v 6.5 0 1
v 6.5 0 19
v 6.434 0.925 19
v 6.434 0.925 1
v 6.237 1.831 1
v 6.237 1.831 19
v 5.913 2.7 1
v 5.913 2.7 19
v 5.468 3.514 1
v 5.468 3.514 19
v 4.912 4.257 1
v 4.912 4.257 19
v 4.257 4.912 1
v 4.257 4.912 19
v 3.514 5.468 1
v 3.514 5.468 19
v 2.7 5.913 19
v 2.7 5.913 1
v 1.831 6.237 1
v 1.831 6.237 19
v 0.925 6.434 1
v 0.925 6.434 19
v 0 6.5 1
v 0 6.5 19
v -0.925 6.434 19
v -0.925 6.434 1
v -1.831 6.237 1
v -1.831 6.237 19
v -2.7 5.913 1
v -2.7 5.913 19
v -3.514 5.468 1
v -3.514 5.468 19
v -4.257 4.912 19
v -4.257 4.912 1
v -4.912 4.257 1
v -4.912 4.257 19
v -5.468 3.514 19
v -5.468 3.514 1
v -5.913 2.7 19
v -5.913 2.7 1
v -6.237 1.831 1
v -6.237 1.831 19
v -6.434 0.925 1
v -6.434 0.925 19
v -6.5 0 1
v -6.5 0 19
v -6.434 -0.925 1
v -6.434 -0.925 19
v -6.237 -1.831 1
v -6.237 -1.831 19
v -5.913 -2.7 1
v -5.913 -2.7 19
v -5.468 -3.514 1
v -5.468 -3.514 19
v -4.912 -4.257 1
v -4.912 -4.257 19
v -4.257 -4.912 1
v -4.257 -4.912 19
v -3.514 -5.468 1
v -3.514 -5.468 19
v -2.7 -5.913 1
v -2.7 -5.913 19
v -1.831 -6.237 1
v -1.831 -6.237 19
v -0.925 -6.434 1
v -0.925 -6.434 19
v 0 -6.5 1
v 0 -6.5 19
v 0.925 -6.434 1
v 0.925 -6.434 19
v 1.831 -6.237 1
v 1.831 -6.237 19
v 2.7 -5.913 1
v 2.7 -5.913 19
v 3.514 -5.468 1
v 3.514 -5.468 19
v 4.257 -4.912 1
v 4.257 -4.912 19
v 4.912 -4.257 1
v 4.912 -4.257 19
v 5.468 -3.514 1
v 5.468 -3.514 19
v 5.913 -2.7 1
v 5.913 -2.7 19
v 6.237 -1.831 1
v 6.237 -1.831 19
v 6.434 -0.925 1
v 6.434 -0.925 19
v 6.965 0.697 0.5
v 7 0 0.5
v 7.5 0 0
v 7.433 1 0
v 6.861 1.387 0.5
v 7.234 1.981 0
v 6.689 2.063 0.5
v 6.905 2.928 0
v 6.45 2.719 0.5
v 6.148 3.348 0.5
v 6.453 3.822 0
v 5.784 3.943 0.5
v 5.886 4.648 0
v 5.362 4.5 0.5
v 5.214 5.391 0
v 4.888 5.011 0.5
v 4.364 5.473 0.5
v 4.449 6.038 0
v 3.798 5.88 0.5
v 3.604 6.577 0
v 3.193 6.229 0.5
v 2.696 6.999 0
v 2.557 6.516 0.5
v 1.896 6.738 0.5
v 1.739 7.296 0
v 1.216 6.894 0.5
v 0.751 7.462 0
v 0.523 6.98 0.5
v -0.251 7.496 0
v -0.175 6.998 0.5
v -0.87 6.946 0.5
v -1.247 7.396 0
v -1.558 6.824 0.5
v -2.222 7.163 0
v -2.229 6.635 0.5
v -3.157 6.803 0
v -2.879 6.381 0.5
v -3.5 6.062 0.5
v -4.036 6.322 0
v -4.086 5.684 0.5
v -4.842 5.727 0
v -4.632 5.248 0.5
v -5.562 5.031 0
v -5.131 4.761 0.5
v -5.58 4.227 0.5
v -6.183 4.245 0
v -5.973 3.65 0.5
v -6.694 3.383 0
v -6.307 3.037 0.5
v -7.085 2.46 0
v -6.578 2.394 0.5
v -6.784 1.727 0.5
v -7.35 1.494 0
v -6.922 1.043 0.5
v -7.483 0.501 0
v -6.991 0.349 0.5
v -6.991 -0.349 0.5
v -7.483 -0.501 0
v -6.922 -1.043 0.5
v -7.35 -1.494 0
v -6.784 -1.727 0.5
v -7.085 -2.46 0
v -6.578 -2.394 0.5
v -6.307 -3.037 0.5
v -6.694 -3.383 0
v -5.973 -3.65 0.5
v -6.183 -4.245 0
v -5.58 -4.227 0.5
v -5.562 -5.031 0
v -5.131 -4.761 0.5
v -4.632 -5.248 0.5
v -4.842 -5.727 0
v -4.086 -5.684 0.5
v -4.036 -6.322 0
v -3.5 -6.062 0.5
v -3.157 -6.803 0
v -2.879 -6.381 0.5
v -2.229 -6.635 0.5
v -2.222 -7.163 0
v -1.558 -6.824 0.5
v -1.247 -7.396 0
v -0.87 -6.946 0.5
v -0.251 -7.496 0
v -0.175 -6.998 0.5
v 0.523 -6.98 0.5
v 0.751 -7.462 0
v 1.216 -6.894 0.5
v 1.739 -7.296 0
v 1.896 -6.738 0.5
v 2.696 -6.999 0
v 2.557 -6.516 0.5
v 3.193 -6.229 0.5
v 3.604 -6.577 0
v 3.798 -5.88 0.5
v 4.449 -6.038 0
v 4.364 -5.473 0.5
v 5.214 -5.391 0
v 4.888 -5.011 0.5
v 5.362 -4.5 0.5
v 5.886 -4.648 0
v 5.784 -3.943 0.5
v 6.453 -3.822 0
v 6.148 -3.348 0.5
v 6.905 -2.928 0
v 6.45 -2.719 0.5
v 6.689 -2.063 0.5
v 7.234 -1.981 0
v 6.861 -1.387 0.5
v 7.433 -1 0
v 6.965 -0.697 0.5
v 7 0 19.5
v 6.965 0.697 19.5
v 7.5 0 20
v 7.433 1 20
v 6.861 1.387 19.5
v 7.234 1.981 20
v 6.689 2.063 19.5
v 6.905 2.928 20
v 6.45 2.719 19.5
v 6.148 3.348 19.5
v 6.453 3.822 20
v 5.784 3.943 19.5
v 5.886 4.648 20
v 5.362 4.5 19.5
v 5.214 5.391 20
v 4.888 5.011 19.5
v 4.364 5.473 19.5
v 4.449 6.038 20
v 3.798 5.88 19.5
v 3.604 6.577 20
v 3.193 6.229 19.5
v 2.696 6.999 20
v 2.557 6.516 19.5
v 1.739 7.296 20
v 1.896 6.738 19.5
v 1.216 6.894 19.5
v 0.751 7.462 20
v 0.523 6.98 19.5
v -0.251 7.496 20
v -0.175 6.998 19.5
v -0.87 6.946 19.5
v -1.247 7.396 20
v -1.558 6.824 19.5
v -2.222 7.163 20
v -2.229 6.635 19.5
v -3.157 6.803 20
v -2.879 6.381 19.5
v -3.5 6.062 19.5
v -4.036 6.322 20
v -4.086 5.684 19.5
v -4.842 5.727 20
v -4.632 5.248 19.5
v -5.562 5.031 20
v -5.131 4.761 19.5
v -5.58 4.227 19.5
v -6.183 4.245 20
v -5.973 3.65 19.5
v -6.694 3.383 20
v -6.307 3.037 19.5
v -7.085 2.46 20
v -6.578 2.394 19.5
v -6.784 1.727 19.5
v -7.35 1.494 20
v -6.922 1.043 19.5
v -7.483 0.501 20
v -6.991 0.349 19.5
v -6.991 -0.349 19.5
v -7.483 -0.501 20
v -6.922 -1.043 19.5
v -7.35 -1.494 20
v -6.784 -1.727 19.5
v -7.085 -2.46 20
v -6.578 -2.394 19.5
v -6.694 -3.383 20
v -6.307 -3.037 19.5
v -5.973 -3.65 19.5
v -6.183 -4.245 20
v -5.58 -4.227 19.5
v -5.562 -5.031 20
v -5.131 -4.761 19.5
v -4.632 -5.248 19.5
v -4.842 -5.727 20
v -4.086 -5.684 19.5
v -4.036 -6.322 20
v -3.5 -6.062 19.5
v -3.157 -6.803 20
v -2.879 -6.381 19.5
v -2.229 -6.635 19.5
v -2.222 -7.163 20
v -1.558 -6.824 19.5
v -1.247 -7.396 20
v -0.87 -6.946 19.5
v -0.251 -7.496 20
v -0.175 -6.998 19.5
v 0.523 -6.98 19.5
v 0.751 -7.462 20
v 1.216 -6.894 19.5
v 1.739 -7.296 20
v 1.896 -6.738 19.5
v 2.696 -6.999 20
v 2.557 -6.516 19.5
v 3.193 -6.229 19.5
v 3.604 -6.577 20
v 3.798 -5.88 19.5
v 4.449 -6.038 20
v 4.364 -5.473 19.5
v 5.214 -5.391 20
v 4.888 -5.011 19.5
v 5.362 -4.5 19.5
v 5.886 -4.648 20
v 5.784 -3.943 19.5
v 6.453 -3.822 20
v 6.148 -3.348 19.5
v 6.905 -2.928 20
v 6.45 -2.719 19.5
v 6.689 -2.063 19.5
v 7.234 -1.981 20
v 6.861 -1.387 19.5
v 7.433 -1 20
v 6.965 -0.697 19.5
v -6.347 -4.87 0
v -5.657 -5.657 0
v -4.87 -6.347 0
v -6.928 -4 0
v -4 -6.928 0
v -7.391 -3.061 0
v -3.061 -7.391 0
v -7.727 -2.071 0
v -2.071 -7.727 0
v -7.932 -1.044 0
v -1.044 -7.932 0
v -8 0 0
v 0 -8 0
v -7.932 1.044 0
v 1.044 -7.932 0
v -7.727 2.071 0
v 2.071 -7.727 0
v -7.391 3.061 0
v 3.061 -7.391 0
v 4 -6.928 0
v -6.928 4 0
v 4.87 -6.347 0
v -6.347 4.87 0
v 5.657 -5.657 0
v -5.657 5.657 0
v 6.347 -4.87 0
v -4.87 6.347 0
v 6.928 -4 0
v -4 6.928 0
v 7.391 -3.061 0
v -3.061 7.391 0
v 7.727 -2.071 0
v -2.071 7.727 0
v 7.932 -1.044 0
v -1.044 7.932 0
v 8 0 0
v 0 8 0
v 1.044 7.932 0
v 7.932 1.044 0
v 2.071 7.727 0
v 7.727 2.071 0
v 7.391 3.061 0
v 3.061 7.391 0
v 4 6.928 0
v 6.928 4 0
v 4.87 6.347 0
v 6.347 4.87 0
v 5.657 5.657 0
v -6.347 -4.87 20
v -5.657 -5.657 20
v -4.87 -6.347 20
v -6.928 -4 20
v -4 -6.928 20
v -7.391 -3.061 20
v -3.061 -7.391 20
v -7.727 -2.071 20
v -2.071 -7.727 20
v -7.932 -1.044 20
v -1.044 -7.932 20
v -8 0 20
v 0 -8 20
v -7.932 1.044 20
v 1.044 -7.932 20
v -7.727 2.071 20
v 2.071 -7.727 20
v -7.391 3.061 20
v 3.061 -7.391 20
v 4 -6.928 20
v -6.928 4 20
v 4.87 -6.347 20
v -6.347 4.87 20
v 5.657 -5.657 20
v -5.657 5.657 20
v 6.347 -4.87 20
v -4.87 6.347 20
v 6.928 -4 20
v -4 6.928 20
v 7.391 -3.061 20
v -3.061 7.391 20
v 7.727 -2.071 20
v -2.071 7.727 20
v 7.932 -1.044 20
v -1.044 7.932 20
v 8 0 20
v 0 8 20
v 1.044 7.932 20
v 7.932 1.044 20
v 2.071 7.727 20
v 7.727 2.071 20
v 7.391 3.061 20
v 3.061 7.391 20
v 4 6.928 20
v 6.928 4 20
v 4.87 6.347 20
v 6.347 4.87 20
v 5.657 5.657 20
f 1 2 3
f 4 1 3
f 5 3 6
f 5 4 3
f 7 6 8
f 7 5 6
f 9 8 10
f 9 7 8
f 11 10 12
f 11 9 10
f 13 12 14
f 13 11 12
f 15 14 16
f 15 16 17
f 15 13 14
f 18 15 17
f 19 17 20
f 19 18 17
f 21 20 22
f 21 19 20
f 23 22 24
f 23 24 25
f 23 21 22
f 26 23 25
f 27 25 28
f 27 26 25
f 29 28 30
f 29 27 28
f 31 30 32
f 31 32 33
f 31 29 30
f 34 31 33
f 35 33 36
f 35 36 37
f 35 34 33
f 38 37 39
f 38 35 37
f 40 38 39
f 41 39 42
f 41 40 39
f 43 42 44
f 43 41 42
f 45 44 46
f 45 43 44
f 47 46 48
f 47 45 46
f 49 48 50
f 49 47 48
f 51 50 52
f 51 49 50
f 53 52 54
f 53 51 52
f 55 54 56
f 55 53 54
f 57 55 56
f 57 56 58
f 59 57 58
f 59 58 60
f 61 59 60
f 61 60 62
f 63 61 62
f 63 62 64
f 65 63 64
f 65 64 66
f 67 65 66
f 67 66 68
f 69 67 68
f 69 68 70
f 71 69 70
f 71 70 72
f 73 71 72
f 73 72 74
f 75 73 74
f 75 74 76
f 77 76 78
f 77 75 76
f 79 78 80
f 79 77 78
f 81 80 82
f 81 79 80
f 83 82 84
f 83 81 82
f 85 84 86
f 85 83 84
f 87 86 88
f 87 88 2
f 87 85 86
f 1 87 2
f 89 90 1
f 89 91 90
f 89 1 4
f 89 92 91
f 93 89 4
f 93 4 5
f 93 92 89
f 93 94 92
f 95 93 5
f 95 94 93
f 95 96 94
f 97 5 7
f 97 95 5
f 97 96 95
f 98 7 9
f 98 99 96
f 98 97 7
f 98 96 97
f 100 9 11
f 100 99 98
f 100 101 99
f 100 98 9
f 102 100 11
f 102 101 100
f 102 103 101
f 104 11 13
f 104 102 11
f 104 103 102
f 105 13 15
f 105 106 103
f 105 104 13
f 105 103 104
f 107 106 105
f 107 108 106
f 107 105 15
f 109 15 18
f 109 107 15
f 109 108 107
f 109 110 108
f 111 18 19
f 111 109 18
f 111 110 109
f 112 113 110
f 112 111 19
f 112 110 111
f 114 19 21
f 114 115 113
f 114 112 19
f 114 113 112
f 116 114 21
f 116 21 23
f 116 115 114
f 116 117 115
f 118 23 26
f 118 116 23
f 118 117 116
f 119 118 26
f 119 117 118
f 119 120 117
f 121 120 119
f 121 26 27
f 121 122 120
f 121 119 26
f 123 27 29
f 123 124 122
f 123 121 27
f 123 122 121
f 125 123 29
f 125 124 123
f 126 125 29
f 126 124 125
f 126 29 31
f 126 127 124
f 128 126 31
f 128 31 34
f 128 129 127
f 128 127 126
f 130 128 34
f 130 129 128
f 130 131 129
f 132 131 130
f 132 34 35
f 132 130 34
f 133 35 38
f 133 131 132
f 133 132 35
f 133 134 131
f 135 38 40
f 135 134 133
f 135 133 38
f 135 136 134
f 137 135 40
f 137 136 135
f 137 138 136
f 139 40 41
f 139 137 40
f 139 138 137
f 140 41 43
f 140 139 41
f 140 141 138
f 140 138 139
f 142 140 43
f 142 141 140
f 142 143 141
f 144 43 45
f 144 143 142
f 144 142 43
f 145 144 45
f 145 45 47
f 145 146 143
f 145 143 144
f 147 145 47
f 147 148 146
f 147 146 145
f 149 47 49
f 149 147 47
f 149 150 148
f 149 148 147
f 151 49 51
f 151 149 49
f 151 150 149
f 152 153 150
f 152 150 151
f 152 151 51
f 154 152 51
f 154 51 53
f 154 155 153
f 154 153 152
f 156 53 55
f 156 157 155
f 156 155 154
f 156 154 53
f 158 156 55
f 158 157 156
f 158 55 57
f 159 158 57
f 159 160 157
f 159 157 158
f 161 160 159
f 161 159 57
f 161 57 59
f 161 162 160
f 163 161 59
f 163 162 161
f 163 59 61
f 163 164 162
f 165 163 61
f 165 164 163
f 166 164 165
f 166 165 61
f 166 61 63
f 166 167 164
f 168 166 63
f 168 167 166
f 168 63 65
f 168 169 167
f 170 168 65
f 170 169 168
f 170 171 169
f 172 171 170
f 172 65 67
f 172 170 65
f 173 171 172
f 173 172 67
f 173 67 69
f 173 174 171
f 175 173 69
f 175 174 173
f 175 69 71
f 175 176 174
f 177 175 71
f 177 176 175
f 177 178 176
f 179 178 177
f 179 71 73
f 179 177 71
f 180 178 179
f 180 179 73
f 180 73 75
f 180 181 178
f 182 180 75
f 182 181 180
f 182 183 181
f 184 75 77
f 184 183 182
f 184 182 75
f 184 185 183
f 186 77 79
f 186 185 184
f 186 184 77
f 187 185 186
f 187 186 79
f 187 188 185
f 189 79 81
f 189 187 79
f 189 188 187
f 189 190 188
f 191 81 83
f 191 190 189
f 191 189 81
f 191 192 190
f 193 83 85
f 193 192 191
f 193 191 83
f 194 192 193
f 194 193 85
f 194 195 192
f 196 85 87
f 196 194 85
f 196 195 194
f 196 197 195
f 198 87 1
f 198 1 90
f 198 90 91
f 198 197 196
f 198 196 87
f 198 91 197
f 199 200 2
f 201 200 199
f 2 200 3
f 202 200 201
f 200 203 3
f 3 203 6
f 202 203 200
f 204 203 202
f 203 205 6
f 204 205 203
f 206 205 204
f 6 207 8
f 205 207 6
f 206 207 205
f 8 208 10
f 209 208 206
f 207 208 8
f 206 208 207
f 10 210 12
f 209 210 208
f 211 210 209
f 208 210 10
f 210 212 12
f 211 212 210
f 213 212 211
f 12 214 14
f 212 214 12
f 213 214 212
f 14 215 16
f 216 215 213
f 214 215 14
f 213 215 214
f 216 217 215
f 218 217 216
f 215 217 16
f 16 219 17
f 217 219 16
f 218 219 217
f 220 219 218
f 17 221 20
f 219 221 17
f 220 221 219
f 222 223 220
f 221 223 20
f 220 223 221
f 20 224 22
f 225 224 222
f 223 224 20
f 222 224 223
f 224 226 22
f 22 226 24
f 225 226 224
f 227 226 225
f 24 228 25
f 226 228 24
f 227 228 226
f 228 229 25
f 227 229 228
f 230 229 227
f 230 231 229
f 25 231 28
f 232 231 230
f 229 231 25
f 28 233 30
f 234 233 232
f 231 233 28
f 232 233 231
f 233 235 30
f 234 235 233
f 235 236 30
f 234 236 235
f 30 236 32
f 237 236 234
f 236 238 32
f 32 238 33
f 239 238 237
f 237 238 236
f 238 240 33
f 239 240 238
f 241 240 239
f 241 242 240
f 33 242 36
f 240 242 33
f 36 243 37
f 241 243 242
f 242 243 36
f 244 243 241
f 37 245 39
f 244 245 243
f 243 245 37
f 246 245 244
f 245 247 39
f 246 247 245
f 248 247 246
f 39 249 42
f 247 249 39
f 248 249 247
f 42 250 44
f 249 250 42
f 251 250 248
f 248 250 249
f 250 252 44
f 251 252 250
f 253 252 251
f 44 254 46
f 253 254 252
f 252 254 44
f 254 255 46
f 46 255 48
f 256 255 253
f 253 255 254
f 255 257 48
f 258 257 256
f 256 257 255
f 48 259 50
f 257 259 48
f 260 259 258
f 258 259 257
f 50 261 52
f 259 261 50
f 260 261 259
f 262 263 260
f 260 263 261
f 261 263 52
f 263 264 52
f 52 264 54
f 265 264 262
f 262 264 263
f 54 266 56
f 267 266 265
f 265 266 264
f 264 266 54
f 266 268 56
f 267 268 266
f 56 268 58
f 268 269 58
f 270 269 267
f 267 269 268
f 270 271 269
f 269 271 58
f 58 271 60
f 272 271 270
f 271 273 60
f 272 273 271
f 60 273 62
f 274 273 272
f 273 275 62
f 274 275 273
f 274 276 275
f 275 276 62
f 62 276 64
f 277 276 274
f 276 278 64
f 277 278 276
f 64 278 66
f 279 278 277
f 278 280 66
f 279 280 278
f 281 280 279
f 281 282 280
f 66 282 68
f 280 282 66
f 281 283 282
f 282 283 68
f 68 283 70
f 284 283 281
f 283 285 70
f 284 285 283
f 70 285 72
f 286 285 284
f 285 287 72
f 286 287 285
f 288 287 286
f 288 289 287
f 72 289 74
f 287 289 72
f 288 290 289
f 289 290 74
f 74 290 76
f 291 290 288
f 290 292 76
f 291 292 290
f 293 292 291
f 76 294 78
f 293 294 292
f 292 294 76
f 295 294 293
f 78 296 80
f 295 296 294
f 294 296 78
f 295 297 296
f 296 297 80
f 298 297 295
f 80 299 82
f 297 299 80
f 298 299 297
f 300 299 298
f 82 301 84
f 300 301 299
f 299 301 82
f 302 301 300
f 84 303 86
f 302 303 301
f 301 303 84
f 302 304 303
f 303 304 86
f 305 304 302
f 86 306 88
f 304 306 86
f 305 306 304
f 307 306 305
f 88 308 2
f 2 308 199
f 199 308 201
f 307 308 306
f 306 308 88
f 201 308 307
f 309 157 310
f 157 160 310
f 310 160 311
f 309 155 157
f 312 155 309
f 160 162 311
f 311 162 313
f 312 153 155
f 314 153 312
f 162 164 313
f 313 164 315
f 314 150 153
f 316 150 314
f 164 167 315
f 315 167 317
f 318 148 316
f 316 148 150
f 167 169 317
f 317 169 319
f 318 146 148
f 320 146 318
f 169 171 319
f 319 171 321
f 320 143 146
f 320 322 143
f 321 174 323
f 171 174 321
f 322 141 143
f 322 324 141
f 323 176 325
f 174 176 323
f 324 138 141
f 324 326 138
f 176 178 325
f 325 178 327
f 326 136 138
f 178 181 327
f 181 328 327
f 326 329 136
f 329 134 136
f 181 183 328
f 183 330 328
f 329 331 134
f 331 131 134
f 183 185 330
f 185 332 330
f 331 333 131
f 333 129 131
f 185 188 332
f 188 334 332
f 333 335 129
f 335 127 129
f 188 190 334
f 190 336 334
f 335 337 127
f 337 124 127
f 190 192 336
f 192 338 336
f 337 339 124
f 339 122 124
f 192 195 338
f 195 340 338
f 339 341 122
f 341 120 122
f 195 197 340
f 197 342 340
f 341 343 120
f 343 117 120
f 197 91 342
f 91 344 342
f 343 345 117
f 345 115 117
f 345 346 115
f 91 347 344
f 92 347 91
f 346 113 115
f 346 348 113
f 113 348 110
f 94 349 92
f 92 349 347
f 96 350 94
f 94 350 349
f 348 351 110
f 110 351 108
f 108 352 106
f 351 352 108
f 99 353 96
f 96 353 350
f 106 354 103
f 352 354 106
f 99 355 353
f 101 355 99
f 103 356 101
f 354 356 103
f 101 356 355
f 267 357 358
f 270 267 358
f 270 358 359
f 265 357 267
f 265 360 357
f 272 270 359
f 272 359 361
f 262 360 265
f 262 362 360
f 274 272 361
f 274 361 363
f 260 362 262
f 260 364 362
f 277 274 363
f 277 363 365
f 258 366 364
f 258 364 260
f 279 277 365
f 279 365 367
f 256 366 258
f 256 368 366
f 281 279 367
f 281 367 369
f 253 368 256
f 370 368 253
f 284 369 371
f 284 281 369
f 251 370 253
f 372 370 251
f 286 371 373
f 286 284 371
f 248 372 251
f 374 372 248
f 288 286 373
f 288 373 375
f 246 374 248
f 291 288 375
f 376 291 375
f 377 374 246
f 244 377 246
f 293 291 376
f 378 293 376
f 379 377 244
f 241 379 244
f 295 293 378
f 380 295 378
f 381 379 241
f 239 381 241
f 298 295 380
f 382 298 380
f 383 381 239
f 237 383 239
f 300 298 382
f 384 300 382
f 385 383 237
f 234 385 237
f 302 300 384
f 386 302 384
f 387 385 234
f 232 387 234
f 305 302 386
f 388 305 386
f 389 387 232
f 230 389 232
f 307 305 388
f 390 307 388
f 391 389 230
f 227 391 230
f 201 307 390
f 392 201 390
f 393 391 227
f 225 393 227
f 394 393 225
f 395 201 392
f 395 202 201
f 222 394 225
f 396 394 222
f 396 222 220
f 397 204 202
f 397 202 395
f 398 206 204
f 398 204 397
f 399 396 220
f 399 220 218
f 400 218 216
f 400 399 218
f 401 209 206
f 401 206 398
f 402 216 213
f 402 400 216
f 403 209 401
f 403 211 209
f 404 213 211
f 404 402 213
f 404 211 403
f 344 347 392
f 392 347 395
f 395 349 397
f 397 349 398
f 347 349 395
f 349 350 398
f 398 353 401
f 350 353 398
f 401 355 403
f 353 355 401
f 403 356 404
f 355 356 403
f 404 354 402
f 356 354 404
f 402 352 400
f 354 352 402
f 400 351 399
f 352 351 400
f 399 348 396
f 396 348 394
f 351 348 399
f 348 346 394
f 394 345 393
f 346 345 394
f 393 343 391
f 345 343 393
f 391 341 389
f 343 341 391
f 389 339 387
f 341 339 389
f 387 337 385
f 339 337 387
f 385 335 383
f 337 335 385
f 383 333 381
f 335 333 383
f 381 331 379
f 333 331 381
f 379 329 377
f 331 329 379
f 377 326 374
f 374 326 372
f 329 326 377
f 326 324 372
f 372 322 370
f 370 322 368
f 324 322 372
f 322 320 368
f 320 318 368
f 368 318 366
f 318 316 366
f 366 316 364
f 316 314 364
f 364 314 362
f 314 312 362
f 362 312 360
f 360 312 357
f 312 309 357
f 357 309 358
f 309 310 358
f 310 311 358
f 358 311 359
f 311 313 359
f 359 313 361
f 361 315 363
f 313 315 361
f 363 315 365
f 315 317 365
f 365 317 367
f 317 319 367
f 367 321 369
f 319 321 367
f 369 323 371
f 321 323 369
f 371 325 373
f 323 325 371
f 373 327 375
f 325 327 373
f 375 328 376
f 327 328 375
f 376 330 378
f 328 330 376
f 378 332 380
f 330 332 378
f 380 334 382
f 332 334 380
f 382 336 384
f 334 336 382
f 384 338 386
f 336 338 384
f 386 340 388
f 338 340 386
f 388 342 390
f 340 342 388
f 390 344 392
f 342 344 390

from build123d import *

# Parameters (mm, degrees)
SKETCH_R        = 8
SKETCH_R_2      = 6.5
PAD_DEPTH       = 20
CHAMFER_SIZE    = 1
CHAMFER001_SIZE = 1


with BuildPart() as part:
    # Sketch → Pad (new body)
    with BuildSketch(Plane.XY):
        Circle(SKETCH_R)
        Circle(SKETCH_R_2, mode=Mode.SUBTRACT)
    extrude(amount=PAD_DEPTH)

    # Chamfer
    chamfer_edges = [part.edges().sort_by_distance(p)[0] for p in [
        (-6.5, 0, 20),
    ]]
    chamfer(chamfer_edges, length=CHAMFER_SIZE)

    # Chamfer001
    chamfer001_edges = [part.edges().sort_by_distance(p)[0] for p in [
        (-6.5, 0, 0),
    ]]
    chamfer(chamfer001_edges, length=CHAMFER001_SIZE)


solid = part.part
